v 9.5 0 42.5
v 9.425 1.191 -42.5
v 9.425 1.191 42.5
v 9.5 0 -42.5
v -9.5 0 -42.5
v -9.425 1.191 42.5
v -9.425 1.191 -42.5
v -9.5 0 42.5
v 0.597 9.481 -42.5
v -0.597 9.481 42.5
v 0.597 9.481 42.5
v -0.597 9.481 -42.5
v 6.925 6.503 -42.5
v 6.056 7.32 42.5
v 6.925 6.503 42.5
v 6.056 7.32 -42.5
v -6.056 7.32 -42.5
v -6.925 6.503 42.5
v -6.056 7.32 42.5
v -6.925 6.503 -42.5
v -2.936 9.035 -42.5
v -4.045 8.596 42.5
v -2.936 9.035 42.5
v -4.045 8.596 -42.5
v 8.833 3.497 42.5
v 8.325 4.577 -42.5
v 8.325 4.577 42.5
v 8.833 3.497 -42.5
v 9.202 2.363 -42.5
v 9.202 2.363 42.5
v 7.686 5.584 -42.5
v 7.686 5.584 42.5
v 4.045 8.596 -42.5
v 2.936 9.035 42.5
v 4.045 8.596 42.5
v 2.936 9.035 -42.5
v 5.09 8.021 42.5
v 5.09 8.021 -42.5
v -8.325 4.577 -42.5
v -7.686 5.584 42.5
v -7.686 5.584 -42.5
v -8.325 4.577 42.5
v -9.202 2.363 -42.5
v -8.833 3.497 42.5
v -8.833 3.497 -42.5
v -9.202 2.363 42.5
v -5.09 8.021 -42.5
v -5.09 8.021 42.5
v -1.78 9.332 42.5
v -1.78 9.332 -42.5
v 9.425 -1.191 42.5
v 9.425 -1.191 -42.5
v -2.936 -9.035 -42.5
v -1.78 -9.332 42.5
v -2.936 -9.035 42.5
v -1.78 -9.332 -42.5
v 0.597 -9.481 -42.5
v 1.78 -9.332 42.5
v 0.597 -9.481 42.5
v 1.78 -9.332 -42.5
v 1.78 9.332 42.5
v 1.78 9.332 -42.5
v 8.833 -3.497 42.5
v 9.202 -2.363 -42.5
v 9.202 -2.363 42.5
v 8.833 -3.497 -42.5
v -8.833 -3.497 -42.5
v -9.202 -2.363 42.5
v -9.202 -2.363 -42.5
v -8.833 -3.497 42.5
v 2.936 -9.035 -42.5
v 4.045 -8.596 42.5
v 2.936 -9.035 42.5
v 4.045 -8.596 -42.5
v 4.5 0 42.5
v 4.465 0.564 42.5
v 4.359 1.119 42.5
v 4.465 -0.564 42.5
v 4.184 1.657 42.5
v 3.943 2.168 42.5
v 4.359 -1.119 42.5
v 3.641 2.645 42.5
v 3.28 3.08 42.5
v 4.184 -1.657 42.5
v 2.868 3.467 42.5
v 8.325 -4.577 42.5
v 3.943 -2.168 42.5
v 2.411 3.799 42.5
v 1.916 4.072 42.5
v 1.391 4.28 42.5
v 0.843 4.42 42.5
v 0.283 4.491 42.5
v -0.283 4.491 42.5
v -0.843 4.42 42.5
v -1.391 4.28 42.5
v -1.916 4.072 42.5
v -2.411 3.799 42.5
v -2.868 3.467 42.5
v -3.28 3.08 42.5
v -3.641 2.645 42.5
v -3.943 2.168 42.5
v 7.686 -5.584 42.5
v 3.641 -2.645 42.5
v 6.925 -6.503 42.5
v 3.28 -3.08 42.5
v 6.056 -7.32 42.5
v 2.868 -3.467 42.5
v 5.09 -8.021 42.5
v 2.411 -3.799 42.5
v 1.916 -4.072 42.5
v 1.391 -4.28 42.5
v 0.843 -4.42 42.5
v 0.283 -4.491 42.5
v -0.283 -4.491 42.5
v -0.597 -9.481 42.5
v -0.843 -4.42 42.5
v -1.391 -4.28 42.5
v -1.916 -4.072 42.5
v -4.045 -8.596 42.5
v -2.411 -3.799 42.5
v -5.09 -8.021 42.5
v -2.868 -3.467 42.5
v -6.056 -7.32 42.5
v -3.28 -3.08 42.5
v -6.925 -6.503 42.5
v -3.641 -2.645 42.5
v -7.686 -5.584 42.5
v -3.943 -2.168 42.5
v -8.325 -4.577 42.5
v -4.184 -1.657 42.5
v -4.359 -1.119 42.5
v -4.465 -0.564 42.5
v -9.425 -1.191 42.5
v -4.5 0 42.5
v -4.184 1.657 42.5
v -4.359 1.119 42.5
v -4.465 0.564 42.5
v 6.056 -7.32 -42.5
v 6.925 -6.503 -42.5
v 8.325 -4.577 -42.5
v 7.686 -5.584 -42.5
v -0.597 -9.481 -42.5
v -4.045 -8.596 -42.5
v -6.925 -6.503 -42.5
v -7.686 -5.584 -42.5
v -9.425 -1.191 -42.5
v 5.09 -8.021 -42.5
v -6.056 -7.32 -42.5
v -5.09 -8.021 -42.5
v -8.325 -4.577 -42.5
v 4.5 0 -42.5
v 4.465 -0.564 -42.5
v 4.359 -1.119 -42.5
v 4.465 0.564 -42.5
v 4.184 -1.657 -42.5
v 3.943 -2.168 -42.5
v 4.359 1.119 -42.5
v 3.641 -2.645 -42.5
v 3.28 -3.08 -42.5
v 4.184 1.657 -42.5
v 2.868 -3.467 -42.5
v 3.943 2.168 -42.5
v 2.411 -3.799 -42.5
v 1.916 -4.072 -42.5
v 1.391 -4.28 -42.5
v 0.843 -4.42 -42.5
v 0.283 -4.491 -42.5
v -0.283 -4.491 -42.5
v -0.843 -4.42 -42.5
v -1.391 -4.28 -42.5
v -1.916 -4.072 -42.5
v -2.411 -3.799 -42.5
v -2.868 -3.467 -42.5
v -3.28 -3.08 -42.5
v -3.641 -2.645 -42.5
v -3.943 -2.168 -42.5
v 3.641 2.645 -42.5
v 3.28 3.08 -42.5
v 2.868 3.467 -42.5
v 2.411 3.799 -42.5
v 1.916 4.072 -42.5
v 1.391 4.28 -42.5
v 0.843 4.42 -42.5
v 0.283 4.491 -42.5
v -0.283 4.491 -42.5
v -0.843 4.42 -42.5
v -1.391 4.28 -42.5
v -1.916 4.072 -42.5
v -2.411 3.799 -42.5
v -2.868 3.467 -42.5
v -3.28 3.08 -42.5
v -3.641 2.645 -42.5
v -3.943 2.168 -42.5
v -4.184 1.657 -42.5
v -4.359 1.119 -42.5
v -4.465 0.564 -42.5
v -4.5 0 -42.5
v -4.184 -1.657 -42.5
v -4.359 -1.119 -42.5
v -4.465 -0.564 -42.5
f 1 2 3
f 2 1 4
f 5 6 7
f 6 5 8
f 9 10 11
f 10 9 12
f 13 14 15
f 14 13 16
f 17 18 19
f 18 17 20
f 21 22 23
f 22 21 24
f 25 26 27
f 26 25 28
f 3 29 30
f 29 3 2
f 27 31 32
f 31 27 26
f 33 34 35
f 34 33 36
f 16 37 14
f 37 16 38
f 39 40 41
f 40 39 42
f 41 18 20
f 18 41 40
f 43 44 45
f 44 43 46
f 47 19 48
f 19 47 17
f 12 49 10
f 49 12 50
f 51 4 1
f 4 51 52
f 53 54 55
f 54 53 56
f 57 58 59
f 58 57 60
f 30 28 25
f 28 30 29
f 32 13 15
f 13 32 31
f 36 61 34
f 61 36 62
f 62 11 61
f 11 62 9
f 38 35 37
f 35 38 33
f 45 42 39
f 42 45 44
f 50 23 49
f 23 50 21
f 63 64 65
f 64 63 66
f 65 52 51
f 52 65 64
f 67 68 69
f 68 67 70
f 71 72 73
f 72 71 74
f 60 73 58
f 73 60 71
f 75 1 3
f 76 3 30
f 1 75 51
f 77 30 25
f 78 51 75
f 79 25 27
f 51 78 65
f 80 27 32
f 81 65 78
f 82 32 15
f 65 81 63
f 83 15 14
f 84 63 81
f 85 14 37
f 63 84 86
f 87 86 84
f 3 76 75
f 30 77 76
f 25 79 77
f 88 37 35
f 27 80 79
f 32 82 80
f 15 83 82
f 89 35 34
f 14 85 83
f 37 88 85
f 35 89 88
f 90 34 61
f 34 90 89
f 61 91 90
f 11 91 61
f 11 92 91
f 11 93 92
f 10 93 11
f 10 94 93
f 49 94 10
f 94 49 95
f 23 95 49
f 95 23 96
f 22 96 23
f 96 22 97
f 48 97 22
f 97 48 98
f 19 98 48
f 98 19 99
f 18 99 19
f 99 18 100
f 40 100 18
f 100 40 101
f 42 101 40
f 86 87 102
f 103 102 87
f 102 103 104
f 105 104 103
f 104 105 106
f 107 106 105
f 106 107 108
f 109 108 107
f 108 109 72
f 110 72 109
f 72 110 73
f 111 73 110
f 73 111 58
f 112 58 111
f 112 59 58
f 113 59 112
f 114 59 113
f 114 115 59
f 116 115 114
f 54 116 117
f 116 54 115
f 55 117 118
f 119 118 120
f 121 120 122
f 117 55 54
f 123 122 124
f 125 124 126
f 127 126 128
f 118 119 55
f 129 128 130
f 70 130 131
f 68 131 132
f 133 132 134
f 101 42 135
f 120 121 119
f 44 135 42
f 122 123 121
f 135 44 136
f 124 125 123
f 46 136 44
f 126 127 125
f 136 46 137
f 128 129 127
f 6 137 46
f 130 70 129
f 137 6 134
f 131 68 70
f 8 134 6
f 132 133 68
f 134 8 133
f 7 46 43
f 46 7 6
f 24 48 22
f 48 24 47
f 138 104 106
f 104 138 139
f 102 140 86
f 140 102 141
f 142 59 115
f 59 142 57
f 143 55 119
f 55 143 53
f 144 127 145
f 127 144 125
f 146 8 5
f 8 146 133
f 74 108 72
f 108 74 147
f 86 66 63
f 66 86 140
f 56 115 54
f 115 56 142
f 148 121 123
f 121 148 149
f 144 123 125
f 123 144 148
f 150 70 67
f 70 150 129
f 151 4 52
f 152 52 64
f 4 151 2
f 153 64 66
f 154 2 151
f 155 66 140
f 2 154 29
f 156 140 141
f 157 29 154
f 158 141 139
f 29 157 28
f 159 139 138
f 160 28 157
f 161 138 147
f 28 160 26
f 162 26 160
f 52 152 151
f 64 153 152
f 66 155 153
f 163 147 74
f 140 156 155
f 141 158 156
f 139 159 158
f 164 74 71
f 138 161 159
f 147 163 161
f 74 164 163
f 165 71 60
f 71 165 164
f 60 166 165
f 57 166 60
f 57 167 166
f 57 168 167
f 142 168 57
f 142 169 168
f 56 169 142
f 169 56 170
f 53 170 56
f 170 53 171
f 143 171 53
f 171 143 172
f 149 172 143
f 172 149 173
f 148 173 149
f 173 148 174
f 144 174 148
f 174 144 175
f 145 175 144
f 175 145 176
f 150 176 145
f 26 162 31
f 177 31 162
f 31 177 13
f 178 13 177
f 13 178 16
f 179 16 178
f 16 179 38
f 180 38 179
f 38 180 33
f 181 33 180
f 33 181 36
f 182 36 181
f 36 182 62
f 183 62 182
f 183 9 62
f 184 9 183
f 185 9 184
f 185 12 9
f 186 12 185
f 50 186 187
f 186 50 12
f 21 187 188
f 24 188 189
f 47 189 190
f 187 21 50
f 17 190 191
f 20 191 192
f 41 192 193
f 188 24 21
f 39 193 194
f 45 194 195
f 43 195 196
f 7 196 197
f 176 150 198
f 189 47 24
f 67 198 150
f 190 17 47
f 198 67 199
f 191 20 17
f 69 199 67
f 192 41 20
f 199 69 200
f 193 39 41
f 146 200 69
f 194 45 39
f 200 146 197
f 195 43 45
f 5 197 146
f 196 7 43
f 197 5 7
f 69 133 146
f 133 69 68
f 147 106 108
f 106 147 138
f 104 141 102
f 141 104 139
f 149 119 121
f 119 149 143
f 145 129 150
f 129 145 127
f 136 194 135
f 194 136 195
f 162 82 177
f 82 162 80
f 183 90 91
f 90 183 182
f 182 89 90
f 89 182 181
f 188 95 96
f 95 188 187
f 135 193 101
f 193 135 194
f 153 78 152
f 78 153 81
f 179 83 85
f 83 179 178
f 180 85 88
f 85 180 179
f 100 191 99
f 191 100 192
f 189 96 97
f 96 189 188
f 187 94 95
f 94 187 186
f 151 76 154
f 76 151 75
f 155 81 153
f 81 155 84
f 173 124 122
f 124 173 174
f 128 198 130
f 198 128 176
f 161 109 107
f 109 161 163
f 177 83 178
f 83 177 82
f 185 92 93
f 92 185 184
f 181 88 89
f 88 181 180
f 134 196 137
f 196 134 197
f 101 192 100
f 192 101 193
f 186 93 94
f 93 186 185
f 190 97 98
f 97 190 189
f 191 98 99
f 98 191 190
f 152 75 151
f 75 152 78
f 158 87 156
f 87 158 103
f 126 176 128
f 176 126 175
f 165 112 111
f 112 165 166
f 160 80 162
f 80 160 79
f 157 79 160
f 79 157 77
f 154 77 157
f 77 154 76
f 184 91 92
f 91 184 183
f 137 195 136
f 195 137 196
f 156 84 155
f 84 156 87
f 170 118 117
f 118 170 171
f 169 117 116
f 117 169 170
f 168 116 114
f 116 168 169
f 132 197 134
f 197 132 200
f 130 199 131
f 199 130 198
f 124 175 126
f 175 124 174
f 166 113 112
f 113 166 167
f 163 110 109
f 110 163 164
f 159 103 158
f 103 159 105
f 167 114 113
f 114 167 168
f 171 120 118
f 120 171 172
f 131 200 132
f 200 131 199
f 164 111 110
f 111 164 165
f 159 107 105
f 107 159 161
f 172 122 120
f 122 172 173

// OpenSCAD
$fn = 50;


difference() {
	union() {
		translate(v = [0, 0, -42.5000000000]) {
			cylinder(h = 85, r = 9.5000000000);
		}
	}
	union() {
		translate(v = [0, 0, -100.0000000000]) {
			cylinder(h = 200, r = 4.5000000000);
		}
	}
}
